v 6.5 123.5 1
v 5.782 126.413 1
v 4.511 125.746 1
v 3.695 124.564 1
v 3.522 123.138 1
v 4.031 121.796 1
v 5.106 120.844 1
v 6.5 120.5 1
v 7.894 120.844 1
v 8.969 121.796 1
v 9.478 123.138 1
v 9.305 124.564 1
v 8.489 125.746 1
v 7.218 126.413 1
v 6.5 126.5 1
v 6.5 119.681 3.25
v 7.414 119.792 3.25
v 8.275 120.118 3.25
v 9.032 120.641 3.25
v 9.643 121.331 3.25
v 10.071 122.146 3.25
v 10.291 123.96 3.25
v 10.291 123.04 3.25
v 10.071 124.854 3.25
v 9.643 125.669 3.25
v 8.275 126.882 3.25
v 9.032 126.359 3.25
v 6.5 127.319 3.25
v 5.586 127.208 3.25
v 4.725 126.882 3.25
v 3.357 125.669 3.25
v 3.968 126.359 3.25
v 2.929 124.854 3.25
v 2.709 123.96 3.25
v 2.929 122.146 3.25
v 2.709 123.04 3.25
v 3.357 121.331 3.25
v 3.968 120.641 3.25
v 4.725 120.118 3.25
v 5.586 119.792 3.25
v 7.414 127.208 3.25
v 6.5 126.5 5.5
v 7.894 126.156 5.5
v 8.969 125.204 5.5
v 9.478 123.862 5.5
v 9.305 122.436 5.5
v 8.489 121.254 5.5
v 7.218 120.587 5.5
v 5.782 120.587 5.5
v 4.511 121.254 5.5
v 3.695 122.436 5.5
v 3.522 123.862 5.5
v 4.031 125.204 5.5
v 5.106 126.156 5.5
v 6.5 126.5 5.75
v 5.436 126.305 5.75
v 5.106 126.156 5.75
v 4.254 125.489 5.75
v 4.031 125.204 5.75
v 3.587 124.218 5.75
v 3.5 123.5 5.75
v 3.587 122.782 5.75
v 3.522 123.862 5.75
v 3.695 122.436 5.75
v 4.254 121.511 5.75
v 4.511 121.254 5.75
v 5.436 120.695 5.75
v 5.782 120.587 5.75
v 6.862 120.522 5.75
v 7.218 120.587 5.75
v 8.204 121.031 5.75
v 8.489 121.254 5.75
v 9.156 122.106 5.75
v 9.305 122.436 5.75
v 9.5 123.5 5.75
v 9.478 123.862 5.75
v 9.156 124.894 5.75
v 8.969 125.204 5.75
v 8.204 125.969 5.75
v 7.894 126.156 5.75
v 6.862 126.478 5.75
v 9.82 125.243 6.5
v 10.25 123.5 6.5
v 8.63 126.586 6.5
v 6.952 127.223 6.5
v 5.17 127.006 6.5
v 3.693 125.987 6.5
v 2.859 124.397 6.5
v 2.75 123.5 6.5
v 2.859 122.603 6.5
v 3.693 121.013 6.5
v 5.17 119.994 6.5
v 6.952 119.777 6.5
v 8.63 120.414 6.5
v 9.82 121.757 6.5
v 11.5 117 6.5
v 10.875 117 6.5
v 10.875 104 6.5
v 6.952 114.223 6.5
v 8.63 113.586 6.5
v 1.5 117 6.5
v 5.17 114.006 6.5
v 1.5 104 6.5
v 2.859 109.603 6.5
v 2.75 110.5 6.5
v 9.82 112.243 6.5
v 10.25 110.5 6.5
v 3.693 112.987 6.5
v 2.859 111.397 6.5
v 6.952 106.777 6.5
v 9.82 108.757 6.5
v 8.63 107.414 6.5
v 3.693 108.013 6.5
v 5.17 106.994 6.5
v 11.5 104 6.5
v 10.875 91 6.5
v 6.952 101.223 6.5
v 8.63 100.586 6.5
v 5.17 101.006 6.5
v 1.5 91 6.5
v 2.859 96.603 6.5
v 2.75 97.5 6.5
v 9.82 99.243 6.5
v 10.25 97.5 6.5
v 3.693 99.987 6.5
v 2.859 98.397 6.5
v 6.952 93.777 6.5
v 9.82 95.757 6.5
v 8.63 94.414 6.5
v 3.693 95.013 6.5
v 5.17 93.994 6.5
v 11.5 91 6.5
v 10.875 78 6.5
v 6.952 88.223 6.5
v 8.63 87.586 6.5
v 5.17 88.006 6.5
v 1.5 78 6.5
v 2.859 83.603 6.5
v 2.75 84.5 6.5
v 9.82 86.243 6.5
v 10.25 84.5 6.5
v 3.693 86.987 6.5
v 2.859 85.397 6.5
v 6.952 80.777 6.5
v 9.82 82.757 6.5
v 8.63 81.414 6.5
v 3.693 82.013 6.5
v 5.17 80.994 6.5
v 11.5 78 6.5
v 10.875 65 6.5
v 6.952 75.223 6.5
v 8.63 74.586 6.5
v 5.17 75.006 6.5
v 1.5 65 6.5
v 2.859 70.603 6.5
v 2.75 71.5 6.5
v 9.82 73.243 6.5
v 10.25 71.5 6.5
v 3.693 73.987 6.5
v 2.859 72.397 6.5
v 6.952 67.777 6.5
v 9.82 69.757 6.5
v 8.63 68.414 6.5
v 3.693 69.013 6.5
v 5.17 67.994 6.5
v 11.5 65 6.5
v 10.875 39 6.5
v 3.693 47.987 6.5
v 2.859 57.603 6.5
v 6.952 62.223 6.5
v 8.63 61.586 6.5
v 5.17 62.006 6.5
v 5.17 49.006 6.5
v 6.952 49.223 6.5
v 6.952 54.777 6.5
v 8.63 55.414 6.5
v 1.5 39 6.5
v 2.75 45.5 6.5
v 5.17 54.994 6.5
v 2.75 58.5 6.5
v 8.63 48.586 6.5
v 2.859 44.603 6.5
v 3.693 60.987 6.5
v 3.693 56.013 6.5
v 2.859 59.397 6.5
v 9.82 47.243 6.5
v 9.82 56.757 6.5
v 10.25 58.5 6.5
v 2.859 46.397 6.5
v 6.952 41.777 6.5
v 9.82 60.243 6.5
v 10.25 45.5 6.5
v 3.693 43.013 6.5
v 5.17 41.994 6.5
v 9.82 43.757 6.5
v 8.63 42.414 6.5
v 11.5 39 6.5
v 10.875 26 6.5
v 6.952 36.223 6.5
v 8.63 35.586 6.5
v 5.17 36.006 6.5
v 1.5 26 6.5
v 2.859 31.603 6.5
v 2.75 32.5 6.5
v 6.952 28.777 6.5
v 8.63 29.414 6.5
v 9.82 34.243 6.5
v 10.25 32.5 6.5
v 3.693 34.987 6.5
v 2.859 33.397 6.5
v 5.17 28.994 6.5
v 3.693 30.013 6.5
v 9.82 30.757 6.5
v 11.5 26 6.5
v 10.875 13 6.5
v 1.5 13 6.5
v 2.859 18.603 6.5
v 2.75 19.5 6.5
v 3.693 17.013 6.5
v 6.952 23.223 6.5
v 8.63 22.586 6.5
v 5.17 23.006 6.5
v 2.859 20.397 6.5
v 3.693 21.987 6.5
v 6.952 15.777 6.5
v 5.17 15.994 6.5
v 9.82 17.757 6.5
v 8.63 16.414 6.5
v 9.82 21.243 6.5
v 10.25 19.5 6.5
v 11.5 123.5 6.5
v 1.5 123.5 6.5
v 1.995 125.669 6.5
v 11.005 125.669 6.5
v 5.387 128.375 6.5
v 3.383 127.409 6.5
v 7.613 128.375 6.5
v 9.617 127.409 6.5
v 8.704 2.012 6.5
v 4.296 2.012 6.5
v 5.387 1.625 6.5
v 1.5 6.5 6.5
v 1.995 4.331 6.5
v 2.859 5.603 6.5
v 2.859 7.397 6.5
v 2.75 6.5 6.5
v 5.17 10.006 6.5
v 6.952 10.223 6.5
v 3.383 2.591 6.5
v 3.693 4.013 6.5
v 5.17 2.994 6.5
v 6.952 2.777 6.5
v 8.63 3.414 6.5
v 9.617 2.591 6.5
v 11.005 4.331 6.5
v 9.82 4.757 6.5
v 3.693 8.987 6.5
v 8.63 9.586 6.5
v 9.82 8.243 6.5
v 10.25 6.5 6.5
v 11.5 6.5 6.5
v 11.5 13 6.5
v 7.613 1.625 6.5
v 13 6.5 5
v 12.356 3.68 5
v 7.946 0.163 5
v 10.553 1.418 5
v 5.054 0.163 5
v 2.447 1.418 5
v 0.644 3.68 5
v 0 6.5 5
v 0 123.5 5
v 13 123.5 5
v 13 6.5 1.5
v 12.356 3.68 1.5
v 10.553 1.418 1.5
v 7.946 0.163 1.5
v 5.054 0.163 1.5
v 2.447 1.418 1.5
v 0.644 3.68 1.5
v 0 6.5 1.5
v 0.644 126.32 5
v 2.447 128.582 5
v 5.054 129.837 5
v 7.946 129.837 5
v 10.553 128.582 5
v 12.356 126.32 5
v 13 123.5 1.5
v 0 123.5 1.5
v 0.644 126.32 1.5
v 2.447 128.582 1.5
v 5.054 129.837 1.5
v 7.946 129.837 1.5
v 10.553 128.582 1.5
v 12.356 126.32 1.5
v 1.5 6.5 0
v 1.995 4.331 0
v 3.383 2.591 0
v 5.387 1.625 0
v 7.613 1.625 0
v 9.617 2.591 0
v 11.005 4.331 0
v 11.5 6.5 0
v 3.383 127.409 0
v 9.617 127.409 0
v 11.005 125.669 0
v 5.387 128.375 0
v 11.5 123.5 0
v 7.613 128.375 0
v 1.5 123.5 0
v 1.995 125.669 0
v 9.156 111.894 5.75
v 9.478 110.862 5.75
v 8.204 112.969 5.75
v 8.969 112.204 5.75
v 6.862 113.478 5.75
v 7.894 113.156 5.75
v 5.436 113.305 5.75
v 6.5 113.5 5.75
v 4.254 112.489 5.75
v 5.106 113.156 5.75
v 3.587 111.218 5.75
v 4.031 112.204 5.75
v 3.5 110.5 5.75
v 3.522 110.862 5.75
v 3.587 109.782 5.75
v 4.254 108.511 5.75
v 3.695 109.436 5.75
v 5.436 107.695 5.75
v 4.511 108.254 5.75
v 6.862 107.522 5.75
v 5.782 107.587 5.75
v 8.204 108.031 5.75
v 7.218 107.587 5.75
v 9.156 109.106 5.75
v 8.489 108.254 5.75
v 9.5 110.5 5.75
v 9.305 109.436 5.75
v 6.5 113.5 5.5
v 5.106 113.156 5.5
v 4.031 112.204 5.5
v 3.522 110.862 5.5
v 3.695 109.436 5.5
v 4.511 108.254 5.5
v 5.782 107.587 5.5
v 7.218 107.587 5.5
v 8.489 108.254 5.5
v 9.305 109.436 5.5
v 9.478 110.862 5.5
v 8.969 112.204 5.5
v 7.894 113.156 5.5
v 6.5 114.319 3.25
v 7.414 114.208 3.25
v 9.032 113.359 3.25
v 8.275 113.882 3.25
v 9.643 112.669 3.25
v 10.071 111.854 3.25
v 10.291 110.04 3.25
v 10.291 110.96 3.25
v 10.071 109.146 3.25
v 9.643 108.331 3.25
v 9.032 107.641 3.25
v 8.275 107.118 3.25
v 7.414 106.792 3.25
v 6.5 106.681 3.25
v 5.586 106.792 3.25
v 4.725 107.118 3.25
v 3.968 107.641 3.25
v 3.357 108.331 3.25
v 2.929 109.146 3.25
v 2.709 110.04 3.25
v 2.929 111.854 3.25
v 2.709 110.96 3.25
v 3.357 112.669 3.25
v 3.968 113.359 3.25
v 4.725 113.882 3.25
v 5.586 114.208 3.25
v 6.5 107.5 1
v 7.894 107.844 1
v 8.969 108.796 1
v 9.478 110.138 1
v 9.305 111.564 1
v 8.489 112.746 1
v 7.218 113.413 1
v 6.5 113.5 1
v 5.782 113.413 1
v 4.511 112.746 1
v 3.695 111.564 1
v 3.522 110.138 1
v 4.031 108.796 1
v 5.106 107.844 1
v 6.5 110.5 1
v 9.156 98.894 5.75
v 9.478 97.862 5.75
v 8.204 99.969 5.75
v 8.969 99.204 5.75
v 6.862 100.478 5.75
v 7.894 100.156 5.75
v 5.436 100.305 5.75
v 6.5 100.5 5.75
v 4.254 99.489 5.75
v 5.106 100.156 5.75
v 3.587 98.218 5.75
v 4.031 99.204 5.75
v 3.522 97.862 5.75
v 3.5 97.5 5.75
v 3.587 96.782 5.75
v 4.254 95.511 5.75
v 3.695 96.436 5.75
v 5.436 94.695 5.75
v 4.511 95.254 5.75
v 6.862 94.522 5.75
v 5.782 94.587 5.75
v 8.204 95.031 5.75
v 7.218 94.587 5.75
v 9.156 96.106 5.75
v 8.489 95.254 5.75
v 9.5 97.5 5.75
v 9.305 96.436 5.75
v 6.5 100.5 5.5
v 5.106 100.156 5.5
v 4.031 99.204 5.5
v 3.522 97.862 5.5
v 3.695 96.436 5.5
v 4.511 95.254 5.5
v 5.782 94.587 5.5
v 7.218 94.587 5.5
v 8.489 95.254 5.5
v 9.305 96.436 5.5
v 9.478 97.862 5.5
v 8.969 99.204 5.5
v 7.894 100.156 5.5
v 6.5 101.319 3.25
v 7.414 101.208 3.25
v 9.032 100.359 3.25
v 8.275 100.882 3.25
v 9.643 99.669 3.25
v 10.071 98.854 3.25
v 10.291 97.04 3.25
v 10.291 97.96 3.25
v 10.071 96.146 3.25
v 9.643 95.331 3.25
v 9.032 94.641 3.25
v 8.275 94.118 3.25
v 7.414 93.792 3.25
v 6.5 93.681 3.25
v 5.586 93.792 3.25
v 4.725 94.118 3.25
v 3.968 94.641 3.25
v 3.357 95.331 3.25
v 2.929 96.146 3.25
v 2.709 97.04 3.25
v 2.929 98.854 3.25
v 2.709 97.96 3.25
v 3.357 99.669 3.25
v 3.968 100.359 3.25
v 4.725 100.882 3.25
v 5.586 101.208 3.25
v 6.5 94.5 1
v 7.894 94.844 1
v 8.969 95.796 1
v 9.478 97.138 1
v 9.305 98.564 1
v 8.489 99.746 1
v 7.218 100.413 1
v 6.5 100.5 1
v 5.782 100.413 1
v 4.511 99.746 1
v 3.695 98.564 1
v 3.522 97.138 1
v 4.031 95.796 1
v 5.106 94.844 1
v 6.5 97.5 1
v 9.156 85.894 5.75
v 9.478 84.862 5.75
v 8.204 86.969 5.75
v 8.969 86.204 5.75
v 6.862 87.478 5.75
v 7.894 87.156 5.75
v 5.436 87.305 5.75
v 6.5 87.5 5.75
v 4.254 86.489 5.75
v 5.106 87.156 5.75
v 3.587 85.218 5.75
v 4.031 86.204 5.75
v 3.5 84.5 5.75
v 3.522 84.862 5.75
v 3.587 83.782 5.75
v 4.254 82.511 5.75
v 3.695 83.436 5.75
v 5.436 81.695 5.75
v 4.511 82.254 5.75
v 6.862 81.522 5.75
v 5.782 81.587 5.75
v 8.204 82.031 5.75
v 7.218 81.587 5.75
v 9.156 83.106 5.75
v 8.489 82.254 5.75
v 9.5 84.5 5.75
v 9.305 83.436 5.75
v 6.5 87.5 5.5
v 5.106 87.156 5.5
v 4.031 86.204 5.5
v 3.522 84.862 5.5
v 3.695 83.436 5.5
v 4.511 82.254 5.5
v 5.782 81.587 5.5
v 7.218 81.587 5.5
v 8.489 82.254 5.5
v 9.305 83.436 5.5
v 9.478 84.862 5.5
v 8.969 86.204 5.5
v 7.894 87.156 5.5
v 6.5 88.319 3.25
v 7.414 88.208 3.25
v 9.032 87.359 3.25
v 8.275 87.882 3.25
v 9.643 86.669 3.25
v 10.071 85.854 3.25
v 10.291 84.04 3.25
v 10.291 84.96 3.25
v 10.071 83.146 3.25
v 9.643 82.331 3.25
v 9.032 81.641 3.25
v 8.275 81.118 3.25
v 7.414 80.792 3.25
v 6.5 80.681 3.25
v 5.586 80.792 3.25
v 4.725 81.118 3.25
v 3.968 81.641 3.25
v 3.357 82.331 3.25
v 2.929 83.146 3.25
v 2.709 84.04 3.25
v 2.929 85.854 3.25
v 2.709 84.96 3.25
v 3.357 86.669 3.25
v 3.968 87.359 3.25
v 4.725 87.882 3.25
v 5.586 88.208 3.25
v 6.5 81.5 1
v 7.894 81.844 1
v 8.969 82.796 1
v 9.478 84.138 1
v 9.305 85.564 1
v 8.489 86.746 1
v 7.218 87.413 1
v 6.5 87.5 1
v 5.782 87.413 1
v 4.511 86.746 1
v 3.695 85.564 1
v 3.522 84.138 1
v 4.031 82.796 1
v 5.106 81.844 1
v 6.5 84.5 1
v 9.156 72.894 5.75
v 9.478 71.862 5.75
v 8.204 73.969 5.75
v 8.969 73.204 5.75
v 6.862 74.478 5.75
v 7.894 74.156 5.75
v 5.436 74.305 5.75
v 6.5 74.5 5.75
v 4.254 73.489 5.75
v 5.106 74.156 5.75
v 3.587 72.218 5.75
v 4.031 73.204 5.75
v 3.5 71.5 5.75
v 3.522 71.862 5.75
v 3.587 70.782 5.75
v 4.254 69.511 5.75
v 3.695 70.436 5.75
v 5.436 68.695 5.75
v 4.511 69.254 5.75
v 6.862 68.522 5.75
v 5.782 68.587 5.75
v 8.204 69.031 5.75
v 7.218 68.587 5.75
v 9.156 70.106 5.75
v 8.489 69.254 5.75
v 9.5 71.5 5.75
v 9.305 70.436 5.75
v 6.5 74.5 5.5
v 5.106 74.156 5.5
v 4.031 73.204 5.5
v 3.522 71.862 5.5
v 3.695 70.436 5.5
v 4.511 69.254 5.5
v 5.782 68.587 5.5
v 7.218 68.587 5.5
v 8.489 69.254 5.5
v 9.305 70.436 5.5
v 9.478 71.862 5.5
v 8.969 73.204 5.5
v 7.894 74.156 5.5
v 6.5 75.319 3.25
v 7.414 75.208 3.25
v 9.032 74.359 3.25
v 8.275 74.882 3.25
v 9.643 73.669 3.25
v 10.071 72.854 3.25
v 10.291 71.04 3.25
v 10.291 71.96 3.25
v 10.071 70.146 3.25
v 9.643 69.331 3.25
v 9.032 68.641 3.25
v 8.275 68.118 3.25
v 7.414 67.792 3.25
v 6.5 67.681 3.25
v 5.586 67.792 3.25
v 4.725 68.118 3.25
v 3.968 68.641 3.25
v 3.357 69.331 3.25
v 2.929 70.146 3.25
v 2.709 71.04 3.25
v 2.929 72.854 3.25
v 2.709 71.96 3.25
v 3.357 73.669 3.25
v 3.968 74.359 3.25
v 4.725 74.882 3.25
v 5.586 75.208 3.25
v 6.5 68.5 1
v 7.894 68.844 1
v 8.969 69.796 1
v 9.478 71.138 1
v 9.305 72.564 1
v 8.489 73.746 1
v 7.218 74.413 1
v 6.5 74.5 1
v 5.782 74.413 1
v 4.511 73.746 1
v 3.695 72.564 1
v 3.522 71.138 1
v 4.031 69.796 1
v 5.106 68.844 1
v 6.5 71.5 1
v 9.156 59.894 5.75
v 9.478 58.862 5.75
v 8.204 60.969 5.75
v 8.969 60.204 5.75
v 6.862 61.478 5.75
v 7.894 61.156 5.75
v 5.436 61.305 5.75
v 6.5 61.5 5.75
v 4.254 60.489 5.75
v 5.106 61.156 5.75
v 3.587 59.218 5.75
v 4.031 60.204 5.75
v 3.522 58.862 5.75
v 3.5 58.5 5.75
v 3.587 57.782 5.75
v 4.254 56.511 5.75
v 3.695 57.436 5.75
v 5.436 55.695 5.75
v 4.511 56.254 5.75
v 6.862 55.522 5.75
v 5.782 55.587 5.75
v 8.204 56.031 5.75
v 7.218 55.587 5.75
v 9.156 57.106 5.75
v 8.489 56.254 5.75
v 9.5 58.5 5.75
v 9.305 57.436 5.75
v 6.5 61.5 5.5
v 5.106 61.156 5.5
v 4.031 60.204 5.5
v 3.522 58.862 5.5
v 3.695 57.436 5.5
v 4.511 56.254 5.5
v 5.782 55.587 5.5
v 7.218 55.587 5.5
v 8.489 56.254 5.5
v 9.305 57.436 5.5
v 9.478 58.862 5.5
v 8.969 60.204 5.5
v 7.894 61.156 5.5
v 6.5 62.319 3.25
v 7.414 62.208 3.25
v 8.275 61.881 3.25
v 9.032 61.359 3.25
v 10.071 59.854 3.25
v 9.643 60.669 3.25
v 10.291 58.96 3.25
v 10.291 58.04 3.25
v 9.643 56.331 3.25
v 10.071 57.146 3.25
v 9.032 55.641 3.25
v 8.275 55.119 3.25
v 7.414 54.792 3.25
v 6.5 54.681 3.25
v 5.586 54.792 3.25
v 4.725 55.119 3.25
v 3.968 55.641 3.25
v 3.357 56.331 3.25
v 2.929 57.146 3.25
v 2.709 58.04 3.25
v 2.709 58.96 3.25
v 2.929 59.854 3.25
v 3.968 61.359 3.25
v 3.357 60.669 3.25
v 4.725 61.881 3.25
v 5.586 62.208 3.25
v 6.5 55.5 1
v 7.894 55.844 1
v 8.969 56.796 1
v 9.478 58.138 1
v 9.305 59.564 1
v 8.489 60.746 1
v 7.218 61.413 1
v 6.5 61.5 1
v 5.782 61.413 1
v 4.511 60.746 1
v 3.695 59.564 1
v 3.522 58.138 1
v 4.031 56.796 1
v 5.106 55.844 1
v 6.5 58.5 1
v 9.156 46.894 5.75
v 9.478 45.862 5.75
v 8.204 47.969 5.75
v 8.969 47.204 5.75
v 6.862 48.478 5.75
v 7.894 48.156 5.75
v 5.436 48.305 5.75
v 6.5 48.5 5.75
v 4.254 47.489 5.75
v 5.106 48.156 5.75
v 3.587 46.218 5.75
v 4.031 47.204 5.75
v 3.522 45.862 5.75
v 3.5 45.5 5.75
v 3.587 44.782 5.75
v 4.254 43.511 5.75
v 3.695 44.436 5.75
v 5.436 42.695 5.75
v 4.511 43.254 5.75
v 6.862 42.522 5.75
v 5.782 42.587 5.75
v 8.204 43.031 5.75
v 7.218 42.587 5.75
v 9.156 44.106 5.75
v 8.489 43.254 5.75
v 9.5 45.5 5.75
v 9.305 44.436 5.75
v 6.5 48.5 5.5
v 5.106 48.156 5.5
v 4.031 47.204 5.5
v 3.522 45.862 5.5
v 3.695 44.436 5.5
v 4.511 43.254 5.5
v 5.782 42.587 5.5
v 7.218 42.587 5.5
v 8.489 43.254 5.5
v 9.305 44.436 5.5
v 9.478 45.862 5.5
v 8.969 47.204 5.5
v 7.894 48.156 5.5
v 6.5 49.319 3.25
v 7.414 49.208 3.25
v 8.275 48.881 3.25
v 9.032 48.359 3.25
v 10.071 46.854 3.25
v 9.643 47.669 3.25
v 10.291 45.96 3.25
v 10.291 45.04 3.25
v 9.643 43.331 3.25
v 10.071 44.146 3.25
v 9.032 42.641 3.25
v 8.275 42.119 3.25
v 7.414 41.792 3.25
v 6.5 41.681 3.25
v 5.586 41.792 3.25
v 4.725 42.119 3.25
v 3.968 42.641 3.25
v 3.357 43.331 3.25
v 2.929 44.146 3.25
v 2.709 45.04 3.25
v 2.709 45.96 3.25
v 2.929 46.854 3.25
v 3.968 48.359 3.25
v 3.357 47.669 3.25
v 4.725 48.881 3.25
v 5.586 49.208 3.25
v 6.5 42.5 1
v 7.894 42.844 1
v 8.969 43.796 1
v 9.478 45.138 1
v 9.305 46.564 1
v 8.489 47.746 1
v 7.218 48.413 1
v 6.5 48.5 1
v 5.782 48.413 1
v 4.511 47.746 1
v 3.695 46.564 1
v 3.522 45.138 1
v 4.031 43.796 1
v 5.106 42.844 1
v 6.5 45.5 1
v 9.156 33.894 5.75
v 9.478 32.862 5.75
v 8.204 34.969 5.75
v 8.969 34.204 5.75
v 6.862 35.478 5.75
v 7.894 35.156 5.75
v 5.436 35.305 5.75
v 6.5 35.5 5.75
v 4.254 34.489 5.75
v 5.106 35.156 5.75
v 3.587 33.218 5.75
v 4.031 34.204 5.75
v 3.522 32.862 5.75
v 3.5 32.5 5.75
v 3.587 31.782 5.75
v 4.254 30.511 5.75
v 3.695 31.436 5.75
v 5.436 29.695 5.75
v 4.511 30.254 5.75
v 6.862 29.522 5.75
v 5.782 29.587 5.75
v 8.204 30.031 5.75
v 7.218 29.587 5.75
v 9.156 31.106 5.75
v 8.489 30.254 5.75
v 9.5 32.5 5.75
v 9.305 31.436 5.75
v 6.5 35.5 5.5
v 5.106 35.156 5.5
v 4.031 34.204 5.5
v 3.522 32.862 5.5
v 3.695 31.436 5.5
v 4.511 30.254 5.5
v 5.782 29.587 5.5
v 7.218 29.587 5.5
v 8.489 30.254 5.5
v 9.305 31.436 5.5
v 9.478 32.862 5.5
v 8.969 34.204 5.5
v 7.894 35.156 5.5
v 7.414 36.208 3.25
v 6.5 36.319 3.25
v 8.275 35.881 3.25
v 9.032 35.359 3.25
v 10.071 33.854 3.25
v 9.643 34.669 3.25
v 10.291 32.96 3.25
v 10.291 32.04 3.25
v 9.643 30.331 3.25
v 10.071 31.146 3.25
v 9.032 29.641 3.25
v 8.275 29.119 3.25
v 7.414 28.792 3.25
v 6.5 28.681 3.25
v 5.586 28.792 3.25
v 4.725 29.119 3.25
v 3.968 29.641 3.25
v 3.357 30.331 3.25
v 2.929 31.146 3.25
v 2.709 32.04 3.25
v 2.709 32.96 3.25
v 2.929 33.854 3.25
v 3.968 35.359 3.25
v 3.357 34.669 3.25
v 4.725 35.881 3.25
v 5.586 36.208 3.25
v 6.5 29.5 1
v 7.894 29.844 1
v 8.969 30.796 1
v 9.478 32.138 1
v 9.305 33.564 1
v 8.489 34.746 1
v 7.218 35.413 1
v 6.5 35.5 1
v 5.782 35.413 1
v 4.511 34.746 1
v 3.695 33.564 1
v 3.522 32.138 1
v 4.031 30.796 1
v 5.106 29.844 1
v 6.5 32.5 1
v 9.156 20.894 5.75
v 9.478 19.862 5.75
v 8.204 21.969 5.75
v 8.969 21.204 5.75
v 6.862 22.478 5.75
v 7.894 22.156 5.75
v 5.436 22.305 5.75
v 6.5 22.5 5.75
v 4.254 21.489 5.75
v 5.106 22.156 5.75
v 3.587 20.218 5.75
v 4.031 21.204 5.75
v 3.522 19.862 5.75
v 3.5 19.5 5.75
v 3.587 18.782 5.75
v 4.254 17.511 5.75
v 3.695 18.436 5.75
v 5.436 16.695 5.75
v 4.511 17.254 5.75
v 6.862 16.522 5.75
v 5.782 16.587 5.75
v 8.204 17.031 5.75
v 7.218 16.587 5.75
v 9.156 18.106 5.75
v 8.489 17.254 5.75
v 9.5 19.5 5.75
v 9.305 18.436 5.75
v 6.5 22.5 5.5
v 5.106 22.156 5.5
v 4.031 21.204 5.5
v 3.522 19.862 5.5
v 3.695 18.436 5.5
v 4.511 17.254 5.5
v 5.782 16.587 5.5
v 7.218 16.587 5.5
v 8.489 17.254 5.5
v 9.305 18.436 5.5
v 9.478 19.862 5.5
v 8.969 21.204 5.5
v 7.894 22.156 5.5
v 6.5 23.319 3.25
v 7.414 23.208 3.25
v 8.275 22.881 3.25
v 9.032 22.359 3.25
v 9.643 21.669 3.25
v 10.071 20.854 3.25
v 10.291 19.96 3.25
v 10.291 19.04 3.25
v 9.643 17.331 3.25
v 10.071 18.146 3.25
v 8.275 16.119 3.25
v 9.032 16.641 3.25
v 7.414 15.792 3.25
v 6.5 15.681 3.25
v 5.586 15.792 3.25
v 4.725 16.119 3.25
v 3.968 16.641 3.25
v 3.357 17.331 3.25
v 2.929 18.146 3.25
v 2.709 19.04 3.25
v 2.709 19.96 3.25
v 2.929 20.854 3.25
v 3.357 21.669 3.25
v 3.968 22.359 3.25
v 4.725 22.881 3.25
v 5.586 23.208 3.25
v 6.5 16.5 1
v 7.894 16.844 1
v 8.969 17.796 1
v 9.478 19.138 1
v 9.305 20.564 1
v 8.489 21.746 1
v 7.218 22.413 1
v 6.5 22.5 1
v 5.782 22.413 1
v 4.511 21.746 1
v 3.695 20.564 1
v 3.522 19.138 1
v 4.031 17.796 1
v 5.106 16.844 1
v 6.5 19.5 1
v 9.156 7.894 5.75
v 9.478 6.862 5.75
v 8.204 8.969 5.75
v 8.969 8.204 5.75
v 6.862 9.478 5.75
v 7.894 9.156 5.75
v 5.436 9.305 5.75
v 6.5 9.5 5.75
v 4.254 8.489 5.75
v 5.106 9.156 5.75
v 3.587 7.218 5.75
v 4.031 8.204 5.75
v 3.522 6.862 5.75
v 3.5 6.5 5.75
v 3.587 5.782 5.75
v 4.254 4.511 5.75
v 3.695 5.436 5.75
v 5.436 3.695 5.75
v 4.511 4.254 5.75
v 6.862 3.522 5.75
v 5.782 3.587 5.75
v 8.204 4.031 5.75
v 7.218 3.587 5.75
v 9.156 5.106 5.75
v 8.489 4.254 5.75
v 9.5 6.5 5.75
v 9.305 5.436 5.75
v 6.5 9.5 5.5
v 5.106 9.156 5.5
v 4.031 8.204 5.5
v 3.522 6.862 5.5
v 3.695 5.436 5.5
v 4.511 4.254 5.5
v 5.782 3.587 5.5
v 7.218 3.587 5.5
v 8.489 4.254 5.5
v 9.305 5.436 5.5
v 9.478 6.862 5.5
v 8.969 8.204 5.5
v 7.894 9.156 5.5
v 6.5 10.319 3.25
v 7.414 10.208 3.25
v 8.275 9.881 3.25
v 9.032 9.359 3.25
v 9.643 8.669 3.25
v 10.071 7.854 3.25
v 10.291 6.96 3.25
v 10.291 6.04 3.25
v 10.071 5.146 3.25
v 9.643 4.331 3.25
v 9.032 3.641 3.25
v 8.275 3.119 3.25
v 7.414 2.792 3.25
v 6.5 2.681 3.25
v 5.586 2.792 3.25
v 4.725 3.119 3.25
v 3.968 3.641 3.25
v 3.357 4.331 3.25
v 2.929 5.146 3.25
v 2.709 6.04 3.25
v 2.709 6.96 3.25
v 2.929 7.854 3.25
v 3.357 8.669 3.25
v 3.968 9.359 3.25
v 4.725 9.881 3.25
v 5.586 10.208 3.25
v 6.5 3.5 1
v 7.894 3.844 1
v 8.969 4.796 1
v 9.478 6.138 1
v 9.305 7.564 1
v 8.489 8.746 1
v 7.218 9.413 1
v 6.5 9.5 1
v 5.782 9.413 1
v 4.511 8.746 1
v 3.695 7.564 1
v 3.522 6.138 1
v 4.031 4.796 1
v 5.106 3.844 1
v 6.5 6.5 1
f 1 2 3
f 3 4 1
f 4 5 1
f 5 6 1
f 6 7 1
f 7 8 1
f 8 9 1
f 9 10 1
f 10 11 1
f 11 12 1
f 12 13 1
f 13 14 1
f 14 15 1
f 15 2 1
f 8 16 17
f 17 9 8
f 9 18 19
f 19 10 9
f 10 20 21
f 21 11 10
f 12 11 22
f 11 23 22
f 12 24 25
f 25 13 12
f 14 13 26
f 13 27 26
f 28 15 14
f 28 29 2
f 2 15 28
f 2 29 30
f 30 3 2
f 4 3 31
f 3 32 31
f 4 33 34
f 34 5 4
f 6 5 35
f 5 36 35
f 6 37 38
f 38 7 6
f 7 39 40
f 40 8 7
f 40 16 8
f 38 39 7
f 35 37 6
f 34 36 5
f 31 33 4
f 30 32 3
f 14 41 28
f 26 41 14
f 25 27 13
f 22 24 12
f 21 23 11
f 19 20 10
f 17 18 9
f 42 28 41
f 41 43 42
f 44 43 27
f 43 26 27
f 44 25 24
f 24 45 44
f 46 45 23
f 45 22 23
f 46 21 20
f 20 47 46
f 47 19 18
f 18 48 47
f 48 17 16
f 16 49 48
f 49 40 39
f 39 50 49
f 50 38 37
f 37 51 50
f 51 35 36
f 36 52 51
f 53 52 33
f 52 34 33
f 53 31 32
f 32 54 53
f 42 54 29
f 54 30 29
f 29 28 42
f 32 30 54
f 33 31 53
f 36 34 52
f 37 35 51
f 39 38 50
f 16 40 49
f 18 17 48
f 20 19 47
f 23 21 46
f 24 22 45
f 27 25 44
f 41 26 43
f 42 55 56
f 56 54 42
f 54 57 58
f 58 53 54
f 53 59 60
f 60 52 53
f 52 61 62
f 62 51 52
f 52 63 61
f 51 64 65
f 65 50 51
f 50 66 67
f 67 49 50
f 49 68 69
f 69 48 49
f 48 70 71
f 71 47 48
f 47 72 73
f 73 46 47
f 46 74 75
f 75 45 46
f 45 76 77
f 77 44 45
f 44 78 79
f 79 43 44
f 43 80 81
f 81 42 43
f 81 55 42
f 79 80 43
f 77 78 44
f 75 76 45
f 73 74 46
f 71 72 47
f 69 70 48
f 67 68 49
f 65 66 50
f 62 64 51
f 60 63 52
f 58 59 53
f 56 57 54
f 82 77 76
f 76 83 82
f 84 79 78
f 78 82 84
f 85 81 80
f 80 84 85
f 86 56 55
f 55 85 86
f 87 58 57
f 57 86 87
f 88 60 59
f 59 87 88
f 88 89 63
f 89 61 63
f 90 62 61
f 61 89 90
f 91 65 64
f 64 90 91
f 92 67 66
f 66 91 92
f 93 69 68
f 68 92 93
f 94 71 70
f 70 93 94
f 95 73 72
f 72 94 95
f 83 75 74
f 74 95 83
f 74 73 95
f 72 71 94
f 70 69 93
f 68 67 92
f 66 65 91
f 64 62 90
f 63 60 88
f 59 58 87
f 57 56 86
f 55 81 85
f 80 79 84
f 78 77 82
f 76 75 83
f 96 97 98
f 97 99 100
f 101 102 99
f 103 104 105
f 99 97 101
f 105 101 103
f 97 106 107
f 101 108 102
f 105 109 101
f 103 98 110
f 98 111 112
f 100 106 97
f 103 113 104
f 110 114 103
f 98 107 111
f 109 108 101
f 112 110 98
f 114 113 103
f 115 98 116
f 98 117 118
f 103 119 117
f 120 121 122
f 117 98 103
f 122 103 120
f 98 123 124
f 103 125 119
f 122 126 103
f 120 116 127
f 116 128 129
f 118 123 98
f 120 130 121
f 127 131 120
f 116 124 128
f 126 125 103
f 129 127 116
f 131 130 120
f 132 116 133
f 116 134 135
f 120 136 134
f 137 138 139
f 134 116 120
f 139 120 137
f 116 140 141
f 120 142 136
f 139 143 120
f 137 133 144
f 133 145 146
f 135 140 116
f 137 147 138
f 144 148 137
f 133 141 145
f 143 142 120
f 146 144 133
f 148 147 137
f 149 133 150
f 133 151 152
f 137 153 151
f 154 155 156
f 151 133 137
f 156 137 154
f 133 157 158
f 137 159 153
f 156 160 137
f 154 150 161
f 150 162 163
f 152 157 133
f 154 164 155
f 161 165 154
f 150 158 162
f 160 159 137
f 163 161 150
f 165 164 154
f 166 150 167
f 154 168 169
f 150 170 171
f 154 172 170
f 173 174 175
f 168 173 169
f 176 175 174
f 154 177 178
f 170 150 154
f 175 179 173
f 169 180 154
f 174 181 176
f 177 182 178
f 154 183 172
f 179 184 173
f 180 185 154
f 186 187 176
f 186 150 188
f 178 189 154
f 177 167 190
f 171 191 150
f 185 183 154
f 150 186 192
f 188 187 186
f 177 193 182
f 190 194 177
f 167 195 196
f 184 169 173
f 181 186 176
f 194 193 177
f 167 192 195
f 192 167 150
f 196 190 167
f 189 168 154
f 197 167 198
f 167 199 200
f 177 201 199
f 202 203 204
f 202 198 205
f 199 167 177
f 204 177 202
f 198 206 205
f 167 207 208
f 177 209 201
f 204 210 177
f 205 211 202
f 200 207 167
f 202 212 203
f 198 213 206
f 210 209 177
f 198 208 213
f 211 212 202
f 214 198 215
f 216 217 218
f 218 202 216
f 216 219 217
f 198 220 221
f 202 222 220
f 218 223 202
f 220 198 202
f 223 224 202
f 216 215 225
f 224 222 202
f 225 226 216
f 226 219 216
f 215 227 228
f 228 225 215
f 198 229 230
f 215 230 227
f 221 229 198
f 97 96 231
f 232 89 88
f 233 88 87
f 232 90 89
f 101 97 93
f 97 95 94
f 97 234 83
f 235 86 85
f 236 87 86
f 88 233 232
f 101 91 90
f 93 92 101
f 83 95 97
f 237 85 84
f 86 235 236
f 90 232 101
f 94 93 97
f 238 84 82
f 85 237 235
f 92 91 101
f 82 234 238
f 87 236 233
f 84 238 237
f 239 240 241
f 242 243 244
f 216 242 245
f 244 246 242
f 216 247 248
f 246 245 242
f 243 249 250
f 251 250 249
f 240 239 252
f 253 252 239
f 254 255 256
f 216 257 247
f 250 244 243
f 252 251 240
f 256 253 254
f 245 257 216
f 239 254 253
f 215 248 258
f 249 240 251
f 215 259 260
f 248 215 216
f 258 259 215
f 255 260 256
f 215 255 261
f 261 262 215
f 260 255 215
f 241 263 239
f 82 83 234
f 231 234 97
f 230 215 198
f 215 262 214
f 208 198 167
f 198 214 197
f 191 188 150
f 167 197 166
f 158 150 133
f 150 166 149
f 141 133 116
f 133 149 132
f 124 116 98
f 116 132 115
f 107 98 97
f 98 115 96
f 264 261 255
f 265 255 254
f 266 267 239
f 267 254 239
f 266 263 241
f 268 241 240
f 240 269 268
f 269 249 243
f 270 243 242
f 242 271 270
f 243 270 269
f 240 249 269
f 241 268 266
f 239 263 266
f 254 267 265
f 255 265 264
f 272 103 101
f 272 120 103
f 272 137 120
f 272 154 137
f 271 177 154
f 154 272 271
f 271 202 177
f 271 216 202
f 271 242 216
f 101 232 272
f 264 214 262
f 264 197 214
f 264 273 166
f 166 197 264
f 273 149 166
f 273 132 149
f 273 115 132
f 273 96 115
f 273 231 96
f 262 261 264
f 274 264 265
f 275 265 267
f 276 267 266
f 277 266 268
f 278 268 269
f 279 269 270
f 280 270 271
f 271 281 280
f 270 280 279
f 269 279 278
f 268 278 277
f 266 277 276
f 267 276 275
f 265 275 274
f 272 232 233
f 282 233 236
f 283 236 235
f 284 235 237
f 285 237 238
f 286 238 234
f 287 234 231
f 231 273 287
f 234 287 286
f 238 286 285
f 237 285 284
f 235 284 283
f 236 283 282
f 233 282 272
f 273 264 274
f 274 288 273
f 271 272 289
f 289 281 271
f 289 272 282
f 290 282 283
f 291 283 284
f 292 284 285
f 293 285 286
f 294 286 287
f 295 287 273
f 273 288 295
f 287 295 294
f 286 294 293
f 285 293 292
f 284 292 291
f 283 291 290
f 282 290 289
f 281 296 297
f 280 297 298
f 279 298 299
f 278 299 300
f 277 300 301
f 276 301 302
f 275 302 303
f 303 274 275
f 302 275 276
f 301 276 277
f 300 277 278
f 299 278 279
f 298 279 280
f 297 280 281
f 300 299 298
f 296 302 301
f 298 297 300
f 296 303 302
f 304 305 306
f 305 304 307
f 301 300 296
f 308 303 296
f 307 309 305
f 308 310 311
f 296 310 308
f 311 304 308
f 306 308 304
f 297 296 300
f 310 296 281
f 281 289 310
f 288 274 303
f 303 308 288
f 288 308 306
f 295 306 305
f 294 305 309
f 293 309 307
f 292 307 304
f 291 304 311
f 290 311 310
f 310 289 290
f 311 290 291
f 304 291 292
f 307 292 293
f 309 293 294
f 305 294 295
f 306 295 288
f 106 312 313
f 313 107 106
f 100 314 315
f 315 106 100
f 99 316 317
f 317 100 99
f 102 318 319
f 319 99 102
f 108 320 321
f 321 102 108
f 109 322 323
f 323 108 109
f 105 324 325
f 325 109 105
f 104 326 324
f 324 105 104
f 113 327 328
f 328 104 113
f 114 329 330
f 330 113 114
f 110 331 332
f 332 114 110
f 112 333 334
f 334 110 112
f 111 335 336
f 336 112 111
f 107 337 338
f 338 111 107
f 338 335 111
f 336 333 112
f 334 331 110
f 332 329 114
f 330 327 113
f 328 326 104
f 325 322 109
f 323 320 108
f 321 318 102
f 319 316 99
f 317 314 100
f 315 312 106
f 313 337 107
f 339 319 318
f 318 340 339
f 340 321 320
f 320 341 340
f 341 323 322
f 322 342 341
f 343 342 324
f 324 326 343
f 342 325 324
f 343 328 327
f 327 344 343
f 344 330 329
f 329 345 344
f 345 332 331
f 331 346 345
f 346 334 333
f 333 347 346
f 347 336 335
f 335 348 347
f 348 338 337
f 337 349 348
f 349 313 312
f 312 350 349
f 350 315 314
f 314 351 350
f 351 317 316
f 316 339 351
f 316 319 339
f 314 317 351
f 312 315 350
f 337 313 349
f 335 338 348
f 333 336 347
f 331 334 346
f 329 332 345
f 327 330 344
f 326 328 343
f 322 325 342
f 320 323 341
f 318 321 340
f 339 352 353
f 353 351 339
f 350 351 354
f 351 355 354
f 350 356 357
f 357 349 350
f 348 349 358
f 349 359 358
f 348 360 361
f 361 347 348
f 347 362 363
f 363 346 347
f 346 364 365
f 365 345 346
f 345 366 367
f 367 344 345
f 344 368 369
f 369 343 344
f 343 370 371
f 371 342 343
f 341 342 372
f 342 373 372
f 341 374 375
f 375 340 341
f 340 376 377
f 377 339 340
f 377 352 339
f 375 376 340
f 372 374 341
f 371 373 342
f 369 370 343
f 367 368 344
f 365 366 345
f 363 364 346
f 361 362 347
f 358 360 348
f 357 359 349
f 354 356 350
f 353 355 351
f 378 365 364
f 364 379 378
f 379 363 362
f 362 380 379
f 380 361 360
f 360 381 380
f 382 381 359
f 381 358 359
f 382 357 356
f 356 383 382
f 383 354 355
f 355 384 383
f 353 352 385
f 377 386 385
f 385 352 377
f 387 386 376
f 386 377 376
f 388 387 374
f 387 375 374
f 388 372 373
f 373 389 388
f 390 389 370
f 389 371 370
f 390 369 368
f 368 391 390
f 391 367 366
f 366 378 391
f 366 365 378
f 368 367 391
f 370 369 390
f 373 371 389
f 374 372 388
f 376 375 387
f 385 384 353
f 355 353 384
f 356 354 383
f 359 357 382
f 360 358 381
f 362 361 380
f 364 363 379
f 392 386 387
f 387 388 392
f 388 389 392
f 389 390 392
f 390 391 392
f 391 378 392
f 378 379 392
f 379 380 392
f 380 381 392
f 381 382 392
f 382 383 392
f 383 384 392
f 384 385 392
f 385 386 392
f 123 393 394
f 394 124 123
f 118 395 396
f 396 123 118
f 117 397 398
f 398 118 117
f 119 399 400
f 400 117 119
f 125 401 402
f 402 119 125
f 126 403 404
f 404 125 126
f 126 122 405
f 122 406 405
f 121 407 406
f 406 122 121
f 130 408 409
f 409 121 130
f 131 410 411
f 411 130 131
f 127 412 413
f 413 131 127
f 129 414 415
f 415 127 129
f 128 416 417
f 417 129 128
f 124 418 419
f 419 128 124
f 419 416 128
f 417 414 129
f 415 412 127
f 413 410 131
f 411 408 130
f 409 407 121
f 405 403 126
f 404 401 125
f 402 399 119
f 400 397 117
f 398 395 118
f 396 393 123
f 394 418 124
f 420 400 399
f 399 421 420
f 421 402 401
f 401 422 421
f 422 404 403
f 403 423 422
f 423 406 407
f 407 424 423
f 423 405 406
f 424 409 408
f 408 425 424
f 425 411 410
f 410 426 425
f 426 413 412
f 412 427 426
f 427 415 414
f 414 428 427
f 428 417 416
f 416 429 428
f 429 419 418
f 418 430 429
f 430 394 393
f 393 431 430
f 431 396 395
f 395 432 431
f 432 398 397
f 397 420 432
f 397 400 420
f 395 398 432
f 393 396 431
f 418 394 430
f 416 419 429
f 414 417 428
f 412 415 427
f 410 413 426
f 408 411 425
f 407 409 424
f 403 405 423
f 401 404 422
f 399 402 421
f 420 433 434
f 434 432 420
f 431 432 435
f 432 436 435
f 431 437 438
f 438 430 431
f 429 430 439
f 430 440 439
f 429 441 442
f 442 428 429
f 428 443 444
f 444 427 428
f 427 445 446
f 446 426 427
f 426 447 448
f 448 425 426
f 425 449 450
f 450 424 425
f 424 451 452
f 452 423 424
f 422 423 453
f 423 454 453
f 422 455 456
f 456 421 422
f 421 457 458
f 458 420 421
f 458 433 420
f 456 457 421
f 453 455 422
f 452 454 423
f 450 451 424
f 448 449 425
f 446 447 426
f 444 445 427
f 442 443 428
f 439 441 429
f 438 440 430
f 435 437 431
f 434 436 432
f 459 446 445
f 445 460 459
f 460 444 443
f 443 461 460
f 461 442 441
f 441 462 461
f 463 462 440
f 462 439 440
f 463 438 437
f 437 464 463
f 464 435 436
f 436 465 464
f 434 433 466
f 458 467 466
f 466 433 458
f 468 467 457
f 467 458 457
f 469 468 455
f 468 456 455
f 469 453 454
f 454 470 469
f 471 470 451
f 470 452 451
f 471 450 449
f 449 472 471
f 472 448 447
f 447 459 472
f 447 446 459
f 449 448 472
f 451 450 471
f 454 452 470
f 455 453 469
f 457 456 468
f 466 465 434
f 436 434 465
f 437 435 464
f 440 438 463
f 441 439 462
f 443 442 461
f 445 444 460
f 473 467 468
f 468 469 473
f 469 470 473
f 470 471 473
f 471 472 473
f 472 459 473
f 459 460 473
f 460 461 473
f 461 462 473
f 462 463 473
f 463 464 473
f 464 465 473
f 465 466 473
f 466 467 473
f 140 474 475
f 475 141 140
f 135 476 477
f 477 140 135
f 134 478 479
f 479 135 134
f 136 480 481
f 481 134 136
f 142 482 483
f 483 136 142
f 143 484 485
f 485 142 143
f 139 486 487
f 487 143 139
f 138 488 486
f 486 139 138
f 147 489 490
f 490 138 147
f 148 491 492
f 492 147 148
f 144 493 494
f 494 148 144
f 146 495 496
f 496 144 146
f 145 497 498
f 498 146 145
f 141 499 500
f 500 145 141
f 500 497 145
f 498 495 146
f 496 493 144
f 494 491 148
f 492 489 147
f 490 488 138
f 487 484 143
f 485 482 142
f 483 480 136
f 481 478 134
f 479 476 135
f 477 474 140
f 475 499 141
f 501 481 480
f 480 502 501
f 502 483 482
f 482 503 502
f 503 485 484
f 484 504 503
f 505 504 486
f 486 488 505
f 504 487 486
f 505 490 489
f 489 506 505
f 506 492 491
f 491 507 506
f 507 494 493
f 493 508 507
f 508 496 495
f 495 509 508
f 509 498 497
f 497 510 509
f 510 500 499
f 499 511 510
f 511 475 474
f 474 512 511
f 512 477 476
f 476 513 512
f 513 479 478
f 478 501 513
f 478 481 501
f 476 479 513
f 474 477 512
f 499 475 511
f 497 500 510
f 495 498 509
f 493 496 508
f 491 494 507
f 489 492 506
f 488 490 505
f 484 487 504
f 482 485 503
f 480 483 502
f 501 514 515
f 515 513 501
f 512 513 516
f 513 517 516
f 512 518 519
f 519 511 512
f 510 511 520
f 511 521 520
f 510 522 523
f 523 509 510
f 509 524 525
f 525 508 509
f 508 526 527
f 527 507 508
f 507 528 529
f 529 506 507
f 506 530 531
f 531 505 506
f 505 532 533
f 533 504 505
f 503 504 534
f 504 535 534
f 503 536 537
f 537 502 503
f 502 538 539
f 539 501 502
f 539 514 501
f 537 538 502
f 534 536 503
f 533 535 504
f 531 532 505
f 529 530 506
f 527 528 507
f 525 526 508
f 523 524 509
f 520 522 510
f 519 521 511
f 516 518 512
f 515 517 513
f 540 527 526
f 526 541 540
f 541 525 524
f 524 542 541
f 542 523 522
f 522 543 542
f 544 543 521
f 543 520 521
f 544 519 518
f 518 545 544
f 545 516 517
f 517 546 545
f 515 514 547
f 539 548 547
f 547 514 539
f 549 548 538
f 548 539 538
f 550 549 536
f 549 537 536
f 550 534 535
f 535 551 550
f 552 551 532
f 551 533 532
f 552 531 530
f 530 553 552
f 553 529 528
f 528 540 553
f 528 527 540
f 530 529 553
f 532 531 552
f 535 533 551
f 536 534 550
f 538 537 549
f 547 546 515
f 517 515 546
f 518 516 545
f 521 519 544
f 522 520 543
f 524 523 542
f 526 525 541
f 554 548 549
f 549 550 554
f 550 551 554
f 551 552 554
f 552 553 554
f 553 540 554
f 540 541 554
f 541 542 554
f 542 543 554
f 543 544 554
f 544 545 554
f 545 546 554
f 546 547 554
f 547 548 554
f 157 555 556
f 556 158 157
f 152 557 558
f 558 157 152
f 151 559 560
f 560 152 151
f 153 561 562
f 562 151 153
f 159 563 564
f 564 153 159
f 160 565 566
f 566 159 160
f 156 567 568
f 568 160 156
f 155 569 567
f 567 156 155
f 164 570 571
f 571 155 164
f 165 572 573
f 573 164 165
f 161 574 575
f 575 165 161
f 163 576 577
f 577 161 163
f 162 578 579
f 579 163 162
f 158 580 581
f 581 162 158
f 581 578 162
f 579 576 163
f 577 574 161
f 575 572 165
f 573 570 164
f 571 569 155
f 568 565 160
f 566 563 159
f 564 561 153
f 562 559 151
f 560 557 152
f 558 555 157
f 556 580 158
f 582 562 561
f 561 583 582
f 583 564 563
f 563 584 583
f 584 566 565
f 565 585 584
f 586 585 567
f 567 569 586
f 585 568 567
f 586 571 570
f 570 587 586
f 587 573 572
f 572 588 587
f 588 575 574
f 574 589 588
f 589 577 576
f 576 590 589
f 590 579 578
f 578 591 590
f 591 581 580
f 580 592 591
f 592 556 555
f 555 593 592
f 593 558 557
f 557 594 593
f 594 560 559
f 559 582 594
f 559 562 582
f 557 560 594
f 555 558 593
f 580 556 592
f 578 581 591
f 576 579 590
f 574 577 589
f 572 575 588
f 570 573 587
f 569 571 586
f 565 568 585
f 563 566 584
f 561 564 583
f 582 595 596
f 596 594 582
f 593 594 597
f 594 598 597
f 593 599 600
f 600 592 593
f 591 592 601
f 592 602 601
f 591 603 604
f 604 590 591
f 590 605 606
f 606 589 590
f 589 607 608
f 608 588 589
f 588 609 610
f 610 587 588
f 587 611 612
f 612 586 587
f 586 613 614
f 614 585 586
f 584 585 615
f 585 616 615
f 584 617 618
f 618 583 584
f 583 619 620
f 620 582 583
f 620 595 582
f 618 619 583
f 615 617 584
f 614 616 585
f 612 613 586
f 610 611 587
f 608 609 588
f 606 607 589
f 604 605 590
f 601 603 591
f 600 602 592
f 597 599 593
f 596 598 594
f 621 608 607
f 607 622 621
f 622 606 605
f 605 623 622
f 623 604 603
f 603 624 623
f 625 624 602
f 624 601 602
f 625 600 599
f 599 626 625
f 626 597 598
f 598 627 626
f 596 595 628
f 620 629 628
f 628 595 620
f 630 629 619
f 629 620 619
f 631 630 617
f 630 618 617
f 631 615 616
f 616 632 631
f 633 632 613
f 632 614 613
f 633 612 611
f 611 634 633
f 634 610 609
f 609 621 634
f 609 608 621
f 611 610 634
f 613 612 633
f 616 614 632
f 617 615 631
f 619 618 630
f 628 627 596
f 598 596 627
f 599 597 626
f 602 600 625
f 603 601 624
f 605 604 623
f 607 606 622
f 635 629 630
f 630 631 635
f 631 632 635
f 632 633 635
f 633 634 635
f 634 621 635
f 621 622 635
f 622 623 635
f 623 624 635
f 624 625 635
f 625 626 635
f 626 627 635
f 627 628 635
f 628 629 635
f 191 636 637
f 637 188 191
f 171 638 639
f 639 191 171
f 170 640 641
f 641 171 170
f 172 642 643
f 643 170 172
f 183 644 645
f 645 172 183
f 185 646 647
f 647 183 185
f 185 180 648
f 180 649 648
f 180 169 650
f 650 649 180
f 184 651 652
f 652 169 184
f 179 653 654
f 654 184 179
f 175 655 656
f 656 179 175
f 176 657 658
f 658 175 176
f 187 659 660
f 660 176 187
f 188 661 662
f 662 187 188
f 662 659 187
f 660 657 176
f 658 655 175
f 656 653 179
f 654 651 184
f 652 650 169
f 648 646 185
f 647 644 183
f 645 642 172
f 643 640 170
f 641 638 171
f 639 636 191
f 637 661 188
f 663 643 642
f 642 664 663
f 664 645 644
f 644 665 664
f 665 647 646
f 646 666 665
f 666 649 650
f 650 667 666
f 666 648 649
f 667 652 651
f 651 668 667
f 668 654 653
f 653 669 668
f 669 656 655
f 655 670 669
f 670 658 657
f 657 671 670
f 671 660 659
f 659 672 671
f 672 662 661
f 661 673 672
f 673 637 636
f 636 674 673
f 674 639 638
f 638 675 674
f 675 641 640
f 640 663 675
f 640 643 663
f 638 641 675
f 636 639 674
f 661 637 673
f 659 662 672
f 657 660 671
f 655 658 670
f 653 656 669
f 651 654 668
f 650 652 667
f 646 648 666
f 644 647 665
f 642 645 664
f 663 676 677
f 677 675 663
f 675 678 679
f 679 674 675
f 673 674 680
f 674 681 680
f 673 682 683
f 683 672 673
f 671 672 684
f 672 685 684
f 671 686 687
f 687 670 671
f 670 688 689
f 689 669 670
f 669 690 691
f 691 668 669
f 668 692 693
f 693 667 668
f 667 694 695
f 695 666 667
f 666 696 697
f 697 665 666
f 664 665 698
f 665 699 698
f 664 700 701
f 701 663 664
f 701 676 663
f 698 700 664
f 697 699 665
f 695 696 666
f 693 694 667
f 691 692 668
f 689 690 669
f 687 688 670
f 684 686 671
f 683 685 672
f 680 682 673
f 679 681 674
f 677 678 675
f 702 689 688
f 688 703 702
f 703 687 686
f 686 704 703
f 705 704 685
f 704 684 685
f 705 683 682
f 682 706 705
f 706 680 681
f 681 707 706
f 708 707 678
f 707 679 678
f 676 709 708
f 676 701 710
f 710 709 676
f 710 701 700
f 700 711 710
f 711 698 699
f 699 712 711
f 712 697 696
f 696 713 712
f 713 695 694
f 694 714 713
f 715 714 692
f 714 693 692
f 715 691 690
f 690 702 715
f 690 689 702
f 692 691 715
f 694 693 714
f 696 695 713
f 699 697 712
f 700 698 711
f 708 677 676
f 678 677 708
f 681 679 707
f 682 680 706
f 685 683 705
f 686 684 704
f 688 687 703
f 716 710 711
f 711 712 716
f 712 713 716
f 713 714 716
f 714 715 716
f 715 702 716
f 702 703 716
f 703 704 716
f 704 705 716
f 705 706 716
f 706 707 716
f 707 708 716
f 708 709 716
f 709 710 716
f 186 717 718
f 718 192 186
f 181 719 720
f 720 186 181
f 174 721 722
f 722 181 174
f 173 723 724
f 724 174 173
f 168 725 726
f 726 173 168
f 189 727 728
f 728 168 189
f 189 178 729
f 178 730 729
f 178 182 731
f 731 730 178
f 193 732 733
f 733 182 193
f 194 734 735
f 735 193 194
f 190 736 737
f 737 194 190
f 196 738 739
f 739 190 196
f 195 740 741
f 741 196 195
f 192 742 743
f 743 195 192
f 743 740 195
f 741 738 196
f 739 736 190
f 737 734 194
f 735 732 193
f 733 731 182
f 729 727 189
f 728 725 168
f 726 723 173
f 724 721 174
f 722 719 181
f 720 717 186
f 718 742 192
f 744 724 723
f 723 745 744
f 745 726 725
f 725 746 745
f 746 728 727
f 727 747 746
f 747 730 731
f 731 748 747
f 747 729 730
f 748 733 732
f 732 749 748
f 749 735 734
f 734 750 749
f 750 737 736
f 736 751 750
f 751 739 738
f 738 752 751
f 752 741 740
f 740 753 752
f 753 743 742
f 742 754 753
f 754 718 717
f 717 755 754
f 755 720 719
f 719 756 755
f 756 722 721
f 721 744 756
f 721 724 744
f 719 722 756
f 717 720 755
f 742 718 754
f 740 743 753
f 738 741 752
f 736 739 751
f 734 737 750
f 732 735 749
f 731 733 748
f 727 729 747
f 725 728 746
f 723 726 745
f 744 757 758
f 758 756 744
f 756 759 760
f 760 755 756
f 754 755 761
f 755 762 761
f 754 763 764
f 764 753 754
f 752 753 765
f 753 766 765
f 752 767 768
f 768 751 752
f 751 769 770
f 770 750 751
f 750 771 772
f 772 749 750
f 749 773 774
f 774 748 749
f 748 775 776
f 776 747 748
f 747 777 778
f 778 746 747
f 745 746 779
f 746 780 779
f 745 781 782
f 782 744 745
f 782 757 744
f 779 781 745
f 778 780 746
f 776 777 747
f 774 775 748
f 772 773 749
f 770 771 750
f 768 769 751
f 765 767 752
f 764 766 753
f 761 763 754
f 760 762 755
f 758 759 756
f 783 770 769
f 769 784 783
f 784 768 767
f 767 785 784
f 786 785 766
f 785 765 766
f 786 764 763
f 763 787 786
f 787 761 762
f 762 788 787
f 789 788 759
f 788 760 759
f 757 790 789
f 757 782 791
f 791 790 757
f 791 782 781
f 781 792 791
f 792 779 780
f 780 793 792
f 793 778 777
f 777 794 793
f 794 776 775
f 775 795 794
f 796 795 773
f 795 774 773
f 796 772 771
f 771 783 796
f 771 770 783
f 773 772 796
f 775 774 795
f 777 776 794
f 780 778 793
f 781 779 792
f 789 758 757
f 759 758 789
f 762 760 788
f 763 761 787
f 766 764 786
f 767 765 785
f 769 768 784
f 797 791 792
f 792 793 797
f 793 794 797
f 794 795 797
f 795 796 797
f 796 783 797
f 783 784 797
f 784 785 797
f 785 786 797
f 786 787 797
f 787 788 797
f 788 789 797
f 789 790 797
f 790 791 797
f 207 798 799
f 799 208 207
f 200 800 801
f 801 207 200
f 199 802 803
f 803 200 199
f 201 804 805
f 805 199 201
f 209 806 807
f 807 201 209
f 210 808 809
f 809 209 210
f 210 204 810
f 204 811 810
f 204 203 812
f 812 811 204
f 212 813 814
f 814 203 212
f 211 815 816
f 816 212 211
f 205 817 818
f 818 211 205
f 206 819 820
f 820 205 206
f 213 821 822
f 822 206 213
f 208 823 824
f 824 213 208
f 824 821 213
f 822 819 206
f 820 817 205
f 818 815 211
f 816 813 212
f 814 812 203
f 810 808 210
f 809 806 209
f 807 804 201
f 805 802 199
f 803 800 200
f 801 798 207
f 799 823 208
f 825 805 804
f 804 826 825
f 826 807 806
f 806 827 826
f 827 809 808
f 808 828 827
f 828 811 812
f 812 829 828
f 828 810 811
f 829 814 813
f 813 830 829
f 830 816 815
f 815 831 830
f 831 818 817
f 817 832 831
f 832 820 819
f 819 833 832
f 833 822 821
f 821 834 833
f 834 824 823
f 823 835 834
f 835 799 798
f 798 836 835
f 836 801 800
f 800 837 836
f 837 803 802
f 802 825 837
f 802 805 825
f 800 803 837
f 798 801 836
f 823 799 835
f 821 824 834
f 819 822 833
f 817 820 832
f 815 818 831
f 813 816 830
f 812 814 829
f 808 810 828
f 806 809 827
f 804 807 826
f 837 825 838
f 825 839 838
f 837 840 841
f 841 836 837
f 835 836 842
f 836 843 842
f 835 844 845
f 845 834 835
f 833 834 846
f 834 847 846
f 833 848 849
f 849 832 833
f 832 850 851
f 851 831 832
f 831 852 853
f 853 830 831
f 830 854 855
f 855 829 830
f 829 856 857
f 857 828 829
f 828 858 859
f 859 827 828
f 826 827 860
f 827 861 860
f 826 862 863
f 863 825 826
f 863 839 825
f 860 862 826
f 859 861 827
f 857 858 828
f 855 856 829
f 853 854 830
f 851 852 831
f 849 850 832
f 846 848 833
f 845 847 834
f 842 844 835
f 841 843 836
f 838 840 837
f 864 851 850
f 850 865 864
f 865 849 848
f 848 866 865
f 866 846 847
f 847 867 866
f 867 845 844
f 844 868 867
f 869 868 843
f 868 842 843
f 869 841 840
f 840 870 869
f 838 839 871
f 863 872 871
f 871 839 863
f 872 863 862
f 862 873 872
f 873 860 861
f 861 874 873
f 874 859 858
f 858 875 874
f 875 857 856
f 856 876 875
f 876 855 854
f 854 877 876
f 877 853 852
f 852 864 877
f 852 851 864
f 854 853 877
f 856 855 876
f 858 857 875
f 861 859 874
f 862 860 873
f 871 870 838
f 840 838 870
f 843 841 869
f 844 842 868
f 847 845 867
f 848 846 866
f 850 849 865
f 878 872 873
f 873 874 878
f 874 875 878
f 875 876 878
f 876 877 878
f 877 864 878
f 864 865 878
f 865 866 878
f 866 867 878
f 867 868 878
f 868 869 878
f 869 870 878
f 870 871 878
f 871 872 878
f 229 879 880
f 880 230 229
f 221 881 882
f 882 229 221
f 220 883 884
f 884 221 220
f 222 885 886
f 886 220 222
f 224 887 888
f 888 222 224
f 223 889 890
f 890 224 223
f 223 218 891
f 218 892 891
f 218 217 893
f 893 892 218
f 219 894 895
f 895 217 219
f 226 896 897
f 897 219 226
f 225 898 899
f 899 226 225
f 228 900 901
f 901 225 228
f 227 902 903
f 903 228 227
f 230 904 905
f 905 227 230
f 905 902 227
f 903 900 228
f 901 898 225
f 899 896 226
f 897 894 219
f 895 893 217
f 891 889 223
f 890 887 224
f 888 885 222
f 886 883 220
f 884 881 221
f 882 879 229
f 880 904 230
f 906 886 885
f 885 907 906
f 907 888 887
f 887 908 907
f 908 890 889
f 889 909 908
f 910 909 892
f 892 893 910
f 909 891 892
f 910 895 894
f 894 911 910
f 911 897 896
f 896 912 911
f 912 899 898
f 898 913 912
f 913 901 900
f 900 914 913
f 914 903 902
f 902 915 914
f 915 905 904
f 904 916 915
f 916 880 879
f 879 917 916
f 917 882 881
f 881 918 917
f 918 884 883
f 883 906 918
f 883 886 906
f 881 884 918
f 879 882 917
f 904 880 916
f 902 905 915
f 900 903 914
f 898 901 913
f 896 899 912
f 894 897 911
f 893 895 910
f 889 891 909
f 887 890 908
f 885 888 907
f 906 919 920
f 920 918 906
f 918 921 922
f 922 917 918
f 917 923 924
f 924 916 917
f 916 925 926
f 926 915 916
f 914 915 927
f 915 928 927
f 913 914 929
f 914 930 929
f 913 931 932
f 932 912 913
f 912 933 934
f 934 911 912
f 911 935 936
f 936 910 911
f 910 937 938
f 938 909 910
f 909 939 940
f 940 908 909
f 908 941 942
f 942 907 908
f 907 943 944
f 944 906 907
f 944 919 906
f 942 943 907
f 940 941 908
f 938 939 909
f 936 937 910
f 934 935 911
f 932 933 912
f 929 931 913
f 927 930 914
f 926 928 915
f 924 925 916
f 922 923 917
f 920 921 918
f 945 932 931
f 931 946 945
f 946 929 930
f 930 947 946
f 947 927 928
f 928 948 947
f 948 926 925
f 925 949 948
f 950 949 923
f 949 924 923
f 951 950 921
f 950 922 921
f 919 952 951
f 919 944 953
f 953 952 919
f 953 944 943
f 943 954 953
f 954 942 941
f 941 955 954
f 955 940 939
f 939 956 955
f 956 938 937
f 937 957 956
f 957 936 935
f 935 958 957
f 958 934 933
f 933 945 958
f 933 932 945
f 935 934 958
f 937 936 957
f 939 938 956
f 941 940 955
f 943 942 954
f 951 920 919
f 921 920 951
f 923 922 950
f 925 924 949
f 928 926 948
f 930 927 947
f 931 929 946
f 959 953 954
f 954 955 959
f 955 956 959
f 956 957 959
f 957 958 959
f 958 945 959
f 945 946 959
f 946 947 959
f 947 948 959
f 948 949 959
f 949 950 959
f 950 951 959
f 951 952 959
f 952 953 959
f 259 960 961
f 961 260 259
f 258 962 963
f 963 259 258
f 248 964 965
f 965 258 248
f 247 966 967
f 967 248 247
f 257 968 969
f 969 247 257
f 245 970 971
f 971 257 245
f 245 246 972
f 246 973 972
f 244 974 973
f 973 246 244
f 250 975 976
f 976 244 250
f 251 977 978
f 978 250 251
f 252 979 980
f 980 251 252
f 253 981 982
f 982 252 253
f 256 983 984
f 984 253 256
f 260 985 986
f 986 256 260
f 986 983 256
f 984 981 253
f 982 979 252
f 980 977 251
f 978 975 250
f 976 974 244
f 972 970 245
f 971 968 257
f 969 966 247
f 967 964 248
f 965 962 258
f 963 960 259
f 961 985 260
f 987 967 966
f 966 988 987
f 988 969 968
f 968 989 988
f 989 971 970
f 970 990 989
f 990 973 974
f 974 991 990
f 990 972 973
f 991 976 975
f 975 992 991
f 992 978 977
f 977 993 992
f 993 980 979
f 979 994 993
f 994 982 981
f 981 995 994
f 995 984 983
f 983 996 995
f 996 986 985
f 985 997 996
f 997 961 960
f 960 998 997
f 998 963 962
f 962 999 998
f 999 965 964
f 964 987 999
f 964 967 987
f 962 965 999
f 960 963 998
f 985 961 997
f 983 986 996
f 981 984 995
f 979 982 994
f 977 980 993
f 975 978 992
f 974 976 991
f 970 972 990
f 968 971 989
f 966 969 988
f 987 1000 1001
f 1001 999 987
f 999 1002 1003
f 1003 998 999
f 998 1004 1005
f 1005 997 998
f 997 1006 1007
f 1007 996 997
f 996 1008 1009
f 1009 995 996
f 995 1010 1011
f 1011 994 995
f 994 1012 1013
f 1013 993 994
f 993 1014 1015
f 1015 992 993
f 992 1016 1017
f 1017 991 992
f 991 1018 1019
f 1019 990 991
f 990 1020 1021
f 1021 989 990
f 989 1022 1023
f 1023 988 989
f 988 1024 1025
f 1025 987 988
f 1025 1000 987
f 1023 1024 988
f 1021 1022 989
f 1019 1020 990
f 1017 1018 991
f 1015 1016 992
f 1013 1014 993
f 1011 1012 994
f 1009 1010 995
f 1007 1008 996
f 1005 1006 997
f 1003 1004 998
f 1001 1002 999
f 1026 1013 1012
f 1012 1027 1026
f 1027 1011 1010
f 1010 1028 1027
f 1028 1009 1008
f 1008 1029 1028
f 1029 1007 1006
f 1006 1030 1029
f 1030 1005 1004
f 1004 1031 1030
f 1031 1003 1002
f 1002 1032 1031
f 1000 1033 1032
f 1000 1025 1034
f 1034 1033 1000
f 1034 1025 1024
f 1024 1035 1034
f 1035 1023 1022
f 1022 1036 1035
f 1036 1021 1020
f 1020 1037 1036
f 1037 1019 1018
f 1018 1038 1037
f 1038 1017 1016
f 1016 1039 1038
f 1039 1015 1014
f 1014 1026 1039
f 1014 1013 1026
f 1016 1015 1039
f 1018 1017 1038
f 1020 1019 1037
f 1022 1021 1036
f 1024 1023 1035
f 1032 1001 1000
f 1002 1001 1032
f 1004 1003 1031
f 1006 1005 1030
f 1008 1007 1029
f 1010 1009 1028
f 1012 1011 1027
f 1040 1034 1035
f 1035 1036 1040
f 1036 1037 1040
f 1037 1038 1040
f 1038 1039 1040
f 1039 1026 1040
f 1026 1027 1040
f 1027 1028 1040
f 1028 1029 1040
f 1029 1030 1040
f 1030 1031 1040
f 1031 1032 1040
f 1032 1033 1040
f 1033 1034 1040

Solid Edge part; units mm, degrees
sketch "Sketch1" plane through (0, 0, 0) normal (0, 0, 1) x (1, 0, 0)
  line L0 (0, 123.5) -> (0, 6.5)
  line L1 (13, 6.5) -> (13, 123.5)
  arc A0 (13, 6.5) -> (0, 6.5) centre (6.5, 6.5) cw
  arc A1 (0, 123.5) -> (13, 123.5) centre (6.5, 123.5) cw
extrude "Protrusion1" add sketch "Sketch1" along normal blind 6.5
sketch "Sketch2" plane through (6.5, 0, 0) normal (1, 0, 0) x (0, 1, 0)
  line L0 (3.5, 5.5) -> (3.5, 6.5)
  line L1 (3.5, 6.5) -> (6.5, 6.5)
  line L2 (6.5, 1) -> (6.5, 6.5)
  line L3 (3.5, 1) -> (6.5, 1)
  line L4 (3.5, 1) -> (2.6811, 3.25)
  line L5 (3.5, 5.5) -> (2.6811, 3.25)
revolve "RevolvedCutout1" cut sketch "Sketch2" angle 360 about axis through (6.5, 6.5, 1) along (0, 0, 1)
chamfer "Chaflán_38" distance 0.75 angle 45 1 edges at (6.5, 3.5, 6.5)
pattern_linear "Pattern1" count 10 spacing 13 along (0, 1, 0) of "RevolvedCutout1", "Chaflán_38"
chamfer "Chaflán_39" distance 1.5 angle 45 8 edges at (13, 65, 6.5) (6.5, 0, 6.5) (0, 65, 6.5) (6.5, 130, 6.5) (13, 65, 0) (6.5, 0, 0) (0, 65, 0) (6.5, 130, 0)
